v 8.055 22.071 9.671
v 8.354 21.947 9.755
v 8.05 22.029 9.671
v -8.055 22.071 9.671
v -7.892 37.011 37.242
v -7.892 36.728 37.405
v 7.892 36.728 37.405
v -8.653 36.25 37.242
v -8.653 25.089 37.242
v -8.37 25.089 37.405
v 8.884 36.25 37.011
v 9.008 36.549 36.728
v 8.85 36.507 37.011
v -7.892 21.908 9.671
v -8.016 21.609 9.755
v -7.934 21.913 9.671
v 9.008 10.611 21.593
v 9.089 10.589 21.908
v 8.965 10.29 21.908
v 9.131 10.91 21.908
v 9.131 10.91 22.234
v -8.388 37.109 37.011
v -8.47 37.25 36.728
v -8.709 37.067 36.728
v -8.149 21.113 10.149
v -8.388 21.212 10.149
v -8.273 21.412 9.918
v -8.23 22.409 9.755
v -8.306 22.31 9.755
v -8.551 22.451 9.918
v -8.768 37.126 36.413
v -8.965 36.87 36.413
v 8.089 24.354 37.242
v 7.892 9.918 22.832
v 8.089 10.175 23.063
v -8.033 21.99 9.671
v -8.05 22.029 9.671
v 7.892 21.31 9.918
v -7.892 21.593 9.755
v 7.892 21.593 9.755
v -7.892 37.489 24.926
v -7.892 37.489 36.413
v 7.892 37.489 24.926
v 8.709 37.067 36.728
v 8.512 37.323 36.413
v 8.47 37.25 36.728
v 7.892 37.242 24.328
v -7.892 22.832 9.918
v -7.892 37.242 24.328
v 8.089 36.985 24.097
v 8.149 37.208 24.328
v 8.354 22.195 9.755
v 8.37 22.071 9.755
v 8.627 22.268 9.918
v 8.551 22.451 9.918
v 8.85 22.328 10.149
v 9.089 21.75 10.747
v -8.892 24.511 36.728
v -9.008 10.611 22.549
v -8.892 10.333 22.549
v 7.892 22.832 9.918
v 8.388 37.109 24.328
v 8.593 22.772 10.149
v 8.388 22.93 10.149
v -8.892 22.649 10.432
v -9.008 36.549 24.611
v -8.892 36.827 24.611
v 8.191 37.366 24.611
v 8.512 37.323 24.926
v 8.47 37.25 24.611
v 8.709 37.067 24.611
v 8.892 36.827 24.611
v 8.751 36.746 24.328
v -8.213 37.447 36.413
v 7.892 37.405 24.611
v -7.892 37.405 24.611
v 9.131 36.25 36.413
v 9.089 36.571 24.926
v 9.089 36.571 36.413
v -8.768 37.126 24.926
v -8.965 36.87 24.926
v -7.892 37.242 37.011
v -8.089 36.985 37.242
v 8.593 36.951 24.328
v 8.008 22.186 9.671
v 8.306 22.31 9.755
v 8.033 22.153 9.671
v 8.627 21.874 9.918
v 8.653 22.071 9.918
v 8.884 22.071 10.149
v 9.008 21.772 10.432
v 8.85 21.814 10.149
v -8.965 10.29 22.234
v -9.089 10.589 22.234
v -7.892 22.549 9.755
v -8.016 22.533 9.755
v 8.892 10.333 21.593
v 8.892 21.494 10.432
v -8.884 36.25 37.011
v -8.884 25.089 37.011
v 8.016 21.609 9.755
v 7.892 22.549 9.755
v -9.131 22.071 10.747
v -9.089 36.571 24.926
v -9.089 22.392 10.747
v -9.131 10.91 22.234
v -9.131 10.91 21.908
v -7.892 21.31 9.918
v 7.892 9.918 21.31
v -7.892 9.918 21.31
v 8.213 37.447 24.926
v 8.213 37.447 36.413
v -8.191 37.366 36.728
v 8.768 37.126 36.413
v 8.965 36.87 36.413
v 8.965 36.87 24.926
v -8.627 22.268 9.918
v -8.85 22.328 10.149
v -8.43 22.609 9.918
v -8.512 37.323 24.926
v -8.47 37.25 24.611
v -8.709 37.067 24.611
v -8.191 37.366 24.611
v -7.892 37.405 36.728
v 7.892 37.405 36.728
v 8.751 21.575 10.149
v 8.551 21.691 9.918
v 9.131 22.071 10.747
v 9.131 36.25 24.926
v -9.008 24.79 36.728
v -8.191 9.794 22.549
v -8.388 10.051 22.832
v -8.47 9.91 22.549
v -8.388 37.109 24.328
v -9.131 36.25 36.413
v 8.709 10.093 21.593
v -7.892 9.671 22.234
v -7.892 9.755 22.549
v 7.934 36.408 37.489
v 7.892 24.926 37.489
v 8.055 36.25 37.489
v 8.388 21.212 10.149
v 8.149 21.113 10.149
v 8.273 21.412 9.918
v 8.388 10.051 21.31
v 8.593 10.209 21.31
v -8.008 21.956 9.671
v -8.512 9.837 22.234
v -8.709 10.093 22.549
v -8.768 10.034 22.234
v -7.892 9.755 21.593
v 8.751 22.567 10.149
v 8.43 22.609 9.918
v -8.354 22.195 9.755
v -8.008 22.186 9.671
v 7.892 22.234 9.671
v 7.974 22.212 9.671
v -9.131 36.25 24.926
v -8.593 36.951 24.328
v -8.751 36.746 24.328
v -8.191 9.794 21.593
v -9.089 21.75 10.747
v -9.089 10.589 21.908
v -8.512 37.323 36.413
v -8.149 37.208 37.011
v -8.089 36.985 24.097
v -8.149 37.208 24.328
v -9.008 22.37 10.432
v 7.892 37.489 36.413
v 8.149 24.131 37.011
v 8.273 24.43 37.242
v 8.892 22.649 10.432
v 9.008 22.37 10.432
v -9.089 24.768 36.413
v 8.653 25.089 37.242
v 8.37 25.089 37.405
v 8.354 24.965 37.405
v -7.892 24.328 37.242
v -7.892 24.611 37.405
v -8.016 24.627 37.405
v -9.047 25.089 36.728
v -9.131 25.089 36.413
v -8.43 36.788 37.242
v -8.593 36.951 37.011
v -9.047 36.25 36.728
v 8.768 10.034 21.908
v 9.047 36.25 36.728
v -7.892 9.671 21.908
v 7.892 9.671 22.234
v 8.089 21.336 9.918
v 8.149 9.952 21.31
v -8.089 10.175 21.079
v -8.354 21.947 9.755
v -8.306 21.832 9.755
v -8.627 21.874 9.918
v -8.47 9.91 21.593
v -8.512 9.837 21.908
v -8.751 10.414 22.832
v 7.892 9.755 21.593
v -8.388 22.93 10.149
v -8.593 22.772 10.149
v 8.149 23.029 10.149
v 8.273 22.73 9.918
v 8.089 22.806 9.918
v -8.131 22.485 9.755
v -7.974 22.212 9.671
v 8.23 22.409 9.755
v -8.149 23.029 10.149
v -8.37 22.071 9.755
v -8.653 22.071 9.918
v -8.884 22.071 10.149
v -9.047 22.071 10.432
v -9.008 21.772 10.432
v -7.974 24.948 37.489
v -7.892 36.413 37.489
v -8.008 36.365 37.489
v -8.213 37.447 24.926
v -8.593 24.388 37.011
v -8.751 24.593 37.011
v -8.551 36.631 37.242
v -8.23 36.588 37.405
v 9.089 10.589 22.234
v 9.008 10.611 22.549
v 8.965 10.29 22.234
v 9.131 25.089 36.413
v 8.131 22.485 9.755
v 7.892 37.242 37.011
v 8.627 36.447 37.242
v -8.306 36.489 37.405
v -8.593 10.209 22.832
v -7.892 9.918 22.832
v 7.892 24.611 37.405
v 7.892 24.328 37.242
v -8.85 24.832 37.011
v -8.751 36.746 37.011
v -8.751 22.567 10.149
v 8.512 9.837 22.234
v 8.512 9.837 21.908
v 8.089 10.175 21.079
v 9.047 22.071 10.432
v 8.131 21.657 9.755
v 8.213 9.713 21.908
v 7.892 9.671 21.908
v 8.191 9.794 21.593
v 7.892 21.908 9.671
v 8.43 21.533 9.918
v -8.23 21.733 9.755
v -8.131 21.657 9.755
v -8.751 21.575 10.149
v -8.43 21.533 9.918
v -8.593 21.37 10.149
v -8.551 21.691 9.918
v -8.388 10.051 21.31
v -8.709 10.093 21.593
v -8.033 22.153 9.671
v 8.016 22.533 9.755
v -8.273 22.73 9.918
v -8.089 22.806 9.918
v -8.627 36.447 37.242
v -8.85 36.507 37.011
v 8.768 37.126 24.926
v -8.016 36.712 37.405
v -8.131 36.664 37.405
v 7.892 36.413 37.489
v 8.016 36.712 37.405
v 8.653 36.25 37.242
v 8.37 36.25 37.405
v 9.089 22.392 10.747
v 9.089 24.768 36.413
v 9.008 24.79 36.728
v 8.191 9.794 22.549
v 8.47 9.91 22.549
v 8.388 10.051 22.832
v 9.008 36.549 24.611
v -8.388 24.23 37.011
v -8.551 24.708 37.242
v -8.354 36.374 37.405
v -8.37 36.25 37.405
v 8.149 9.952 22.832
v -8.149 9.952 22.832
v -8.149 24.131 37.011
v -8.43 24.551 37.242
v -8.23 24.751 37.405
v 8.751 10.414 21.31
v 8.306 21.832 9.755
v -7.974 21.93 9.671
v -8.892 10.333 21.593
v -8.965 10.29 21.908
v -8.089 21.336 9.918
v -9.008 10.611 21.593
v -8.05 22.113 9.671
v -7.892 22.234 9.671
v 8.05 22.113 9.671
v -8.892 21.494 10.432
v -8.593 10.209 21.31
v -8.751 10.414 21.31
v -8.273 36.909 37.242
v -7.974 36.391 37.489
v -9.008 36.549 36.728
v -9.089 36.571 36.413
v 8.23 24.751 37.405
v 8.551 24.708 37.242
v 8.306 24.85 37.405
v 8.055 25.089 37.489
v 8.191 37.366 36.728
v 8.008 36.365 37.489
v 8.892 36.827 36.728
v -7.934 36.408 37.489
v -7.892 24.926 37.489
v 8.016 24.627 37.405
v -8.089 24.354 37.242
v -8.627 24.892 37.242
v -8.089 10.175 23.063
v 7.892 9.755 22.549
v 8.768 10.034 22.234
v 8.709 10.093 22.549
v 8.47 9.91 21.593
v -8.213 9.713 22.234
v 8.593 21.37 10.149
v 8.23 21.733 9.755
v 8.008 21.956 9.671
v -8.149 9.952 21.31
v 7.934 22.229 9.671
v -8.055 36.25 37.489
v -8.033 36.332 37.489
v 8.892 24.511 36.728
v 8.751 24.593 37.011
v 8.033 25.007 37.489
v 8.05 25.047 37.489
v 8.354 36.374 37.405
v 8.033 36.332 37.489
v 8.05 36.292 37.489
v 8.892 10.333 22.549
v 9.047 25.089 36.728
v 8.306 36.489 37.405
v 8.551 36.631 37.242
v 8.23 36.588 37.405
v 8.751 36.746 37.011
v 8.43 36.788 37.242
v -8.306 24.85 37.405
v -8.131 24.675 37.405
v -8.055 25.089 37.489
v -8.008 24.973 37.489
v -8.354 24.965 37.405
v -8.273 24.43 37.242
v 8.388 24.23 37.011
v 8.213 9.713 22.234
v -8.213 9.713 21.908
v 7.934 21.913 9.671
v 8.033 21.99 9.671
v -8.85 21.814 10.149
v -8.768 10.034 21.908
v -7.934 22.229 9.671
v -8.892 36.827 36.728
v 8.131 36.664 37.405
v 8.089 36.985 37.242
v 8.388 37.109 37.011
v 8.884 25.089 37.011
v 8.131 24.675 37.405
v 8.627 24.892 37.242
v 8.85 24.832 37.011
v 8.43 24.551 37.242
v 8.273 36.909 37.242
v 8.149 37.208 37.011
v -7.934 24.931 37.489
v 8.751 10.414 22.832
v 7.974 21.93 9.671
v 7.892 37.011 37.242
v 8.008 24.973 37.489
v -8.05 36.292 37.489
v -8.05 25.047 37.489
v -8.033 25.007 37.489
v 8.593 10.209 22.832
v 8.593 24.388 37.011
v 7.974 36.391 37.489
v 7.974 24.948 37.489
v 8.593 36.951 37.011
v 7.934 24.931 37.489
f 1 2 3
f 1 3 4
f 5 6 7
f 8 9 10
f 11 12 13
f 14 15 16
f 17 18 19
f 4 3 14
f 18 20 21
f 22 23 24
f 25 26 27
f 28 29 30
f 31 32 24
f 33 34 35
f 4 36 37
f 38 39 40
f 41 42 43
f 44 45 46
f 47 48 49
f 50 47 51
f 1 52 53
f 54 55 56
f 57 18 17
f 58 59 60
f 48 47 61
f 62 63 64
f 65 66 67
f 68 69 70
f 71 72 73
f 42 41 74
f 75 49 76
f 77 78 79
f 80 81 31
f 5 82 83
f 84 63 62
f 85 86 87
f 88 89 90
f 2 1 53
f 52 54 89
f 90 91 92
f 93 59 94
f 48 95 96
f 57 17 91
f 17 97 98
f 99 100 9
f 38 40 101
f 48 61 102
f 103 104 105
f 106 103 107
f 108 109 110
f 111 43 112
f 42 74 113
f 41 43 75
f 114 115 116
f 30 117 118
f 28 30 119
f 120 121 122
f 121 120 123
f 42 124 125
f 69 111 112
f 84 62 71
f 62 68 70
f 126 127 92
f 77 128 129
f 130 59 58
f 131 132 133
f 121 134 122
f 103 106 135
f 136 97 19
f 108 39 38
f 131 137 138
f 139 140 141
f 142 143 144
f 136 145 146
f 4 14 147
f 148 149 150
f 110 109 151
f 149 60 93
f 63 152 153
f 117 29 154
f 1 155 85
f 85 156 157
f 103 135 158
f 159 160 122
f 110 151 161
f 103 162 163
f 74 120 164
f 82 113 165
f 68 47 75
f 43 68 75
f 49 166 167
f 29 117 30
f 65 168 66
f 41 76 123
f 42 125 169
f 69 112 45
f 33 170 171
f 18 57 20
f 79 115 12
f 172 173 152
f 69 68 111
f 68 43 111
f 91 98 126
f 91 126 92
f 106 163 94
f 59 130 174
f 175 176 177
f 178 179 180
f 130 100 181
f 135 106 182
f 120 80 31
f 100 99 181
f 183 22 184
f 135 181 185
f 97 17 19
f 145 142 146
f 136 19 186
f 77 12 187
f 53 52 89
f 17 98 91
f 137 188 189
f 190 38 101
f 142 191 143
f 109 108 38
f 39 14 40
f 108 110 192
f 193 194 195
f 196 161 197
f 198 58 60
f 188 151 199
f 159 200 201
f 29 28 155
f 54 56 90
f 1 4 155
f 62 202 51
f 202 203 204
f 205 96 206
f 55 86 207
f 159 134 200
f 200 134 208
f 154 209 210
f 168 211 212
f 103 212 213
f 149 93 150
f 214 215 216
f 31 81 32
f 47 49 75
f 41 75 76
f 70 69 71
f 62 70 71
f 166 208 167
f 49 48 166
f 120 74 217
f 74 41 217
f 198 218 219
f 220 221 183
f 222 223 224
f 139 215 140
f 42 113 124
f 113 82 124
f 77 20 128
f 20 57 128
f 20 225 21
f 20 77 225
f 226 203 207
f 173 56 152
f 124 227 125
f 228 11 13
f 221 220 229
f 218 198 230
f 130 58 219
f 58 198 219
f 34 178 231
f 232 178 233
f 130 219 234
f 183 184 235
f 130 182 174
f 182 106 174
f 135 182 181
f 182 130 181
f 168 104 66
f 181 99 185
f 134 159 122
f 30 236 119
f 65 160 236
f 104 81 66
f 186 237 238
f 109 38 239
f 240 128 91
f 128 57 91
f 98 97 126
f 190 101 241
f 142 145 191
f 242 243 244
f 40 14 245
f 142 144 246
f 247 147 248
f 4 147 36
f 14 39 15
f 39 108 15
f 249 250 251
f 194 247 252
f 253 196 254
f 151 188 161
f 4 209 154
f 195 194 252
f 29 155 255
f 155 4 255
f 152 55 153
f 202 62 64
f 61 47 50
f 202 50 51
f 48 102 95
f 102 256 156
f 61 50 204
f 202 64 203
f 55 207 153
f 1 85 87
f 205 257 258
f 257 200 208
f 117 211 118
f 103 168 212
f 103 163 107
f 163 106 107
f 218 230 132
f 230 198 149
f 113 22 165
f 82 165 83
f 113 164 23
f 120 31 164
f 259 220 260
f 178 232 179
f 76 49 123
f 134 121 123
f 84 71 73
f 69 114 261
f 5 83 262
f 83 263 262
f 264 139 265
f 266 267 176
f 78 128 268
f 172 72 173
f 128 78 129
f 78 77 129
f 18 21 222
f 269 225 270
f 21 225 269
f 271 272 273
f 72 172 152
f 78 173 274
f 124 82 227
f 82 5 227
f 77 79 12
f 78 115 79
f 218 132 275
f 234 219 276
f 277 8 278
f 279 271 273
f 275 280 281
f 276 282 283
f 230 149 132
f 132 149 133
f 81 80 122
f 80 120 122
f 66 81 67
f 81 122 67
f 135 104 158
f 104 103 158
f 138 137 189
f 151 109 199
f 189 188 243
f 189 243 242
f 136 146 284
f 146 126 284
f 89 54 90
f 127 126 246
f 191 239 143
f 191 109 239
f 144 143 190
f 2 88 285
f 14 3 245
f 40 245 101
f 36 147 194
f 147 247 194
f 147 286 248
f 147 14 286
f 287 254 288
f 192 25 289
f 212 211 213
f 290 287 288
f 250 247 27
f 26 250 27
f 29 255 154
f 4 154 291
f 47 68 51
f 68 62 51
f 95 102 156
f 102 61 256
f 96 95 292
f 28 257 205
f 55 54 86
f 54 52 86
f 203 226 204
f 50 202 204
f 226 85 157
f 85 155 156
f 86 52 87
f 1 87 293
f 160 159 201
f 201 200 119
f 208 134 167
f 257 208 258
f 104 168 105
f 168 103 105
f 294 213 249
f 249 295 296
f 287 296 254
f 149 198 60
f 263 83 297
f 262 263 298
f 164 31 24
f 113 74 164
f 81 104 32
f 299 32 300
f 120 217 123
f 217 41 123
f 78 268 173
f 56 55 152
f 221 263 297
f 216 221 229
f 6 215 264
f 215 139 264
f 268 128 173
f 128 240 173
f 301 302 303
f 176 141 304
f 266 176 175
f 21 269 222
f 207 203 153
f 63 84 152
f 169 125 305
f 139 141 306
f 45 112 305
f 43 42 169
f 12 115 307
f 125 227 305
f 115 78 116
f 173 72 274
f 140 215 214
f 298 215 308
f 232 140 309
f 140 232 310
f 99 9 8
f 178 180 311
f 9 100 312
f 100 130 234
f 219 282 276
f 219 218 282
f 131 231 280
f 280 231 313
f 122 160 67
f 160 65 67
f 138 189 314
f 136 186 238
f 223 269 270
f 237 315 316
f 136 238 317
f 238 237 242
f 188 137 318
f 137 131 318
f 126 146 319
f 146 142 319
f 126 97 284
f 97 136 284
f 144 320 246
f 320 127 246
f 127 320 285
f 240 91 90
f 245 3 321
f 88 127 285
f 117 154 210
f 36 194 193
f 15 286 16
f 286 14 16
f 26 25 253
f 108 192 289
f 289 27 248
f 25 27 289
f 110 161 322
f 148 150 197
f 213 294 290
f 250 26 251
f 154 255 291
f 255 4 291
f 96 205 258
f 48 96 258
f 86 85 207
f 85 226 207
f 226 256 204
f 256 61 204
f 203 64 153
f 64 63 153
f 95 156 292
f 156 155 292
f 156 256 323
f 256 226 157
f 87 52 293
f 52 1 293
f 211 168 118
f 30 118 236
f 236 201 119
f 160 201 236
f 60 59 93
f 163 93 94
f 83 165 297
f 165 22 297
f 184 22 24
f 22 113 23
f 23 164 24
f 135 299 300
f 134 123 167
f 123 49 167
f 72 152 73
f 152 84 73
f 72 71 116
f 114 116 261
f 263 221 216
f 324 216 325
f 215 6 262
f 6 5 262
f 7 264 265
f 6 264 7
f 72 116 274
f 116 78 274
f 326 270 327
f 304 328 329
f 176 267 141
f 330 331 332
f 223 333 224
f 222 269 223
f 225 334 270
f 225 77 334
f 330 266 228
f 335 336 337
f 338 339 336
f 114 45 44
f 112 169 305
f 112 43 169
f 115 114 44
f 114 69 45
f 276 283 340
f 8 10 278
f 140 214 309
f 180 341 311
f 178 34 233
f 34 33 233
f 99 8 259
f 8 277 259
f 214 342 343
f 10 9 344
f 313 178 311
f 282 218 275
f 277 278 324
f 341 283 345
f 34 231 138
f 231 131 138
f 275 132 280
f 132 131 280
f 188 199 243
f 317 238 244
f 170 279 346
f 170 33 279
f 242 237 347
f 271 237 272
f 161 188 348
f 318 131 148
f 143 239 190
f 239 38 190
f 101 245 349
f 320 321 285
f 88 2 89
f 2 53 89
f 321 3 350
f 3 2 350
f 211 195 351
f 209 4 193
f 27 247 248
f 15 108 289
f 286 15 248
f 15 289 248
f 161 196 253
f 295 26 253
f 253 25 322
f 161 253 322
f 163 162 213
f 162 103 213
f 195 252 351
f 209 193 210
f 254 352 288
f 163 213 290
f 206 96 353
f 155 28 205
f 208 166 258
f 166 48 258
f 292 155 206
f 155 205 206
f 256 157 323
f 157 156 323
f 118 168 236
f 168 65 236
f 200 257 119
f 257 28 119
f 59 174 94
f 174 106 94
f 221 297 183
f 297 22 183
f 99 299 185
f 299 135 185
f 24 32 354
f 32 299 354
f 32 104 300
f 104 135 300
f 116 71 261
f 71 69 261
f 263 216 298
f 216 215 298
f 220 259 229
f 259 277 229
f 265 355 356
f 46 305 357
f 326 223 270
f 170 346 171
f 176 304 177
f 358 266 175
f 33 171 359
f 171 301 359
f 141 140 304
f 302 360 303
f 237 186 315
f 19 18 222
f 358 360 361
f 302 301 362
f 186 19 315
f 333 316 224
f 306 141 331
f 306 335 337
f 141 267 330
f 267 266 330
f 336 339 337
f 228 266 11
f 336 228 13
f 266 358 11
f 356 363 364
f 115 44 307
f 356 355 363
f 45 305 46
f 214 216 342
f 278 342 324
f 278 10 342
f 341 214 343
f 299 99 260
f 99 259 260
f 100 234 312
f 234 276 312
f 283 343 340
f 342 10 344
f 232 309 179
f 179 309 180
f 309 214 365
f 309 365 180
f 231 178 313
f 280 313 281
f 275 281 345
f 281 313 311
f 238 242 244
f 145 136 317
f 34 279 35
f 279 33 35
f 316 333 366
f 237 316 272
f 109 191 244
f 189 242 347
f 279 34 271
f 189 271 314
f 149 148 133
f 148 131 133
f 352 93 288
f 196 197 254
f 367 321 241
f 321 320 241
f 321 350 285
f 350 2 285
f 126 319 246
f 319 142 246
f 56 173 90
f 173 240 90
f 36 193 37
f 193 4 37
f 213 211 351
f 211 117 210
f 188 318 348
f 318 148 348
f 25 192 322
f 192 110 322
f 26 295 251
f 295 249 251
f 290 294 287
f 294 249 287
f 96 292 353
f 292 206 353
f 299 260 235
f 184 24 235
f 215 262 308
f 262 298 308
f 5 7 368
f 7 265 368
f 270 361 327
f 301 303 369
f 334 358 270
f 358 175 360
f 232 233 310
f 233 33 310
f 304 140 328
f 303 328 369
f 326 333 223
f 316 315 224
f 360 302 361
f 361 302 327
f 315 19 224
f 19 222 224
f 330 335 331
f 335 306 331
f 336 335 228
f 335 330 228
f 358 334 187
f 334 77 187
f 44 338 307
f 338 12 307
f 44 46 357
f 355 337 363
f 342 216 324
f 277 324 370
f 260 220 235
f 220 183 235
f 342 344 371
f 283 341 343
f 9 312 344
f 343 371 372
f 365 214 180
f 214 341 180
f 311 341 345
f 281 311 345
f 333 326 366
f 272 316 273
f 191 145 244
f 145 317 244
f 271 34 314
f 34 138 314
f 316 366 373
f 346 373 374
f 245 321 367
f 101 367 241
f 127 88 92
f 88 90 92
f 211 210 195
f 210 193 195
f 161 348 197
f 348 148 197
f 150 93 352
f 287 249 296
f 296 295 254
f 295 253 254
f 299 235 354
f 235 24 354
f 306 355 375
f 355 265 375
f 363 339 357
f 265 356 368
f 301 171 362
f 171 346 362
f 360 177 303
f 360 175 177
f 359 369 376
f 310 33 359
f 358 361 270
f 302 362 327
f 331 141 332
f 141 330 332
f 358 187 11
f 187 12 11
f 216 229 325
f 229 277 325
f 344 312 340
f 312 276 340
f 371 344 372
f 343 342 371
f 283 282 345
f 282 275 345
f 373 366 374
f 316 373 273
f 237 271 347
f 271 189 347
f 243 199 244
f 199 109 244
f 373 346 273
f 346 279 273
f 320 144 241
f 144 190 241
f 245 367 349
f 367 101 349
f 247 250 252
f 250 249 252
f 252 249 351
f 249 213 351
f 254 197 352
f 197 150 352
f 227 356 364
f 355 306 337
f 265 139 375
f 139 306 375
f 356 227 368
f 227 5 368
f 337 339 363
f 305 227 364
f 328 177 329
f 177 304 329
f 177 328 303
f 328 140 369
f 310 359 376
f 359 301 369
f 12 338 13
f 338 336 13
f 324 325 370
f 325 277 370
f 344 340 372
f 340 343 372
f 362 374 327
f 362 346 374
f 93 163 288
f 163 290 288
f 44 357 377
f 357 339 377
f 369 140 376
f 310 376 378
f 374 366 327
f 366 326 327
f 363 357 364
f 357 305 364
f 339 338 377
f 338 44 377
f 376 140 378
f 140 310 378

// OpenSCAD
// file: def.scad
round_radius = 1.25;
sticker_margin = 3;
sticker_round_radius = 1;
total_size = 75;
base_size = (total_size - round_radius * 4) / (4 + sqrt(2));
cut1_dis = base_size * sqrt(2) / 2;
cut2_dis = base_size * (1 + sqrt(2) / 2);
cut2_corner_dis = base_size * (sqrt(2) / 2 * sqrt(3) + 1 / 3 * sqrt(3));
inf = total_size * 10;
// main file
include <def.scad>

module edge_block() {
    minkowski() {
        difference() {
            intersection() {
                cube([total_size - round_radius * 2, total_size - round_radius * 2, total_size - round_radius * 2], center = true);
                rotate([-45, 0, 0])
                    translate([0, 0, cut2_dis + round_radius])
                        translate([-inf, -inf, 0])
                            cube([inf * 2, inf * 2, inf]);
            }
            for (vec = [[45, 0, 0], [-135, 0, 0], [0, 90, 0], [0, -90, 0]])
                rotate(vec)
                    translate([0, 0, cut1_dis - round_radius])
                        translate([-inf, -inf, 0])
                            cube([inf * 2, inf * 2, inf]);
        }
        sphere(round_radius, $fn = 24);
    }
}

edge_block();
